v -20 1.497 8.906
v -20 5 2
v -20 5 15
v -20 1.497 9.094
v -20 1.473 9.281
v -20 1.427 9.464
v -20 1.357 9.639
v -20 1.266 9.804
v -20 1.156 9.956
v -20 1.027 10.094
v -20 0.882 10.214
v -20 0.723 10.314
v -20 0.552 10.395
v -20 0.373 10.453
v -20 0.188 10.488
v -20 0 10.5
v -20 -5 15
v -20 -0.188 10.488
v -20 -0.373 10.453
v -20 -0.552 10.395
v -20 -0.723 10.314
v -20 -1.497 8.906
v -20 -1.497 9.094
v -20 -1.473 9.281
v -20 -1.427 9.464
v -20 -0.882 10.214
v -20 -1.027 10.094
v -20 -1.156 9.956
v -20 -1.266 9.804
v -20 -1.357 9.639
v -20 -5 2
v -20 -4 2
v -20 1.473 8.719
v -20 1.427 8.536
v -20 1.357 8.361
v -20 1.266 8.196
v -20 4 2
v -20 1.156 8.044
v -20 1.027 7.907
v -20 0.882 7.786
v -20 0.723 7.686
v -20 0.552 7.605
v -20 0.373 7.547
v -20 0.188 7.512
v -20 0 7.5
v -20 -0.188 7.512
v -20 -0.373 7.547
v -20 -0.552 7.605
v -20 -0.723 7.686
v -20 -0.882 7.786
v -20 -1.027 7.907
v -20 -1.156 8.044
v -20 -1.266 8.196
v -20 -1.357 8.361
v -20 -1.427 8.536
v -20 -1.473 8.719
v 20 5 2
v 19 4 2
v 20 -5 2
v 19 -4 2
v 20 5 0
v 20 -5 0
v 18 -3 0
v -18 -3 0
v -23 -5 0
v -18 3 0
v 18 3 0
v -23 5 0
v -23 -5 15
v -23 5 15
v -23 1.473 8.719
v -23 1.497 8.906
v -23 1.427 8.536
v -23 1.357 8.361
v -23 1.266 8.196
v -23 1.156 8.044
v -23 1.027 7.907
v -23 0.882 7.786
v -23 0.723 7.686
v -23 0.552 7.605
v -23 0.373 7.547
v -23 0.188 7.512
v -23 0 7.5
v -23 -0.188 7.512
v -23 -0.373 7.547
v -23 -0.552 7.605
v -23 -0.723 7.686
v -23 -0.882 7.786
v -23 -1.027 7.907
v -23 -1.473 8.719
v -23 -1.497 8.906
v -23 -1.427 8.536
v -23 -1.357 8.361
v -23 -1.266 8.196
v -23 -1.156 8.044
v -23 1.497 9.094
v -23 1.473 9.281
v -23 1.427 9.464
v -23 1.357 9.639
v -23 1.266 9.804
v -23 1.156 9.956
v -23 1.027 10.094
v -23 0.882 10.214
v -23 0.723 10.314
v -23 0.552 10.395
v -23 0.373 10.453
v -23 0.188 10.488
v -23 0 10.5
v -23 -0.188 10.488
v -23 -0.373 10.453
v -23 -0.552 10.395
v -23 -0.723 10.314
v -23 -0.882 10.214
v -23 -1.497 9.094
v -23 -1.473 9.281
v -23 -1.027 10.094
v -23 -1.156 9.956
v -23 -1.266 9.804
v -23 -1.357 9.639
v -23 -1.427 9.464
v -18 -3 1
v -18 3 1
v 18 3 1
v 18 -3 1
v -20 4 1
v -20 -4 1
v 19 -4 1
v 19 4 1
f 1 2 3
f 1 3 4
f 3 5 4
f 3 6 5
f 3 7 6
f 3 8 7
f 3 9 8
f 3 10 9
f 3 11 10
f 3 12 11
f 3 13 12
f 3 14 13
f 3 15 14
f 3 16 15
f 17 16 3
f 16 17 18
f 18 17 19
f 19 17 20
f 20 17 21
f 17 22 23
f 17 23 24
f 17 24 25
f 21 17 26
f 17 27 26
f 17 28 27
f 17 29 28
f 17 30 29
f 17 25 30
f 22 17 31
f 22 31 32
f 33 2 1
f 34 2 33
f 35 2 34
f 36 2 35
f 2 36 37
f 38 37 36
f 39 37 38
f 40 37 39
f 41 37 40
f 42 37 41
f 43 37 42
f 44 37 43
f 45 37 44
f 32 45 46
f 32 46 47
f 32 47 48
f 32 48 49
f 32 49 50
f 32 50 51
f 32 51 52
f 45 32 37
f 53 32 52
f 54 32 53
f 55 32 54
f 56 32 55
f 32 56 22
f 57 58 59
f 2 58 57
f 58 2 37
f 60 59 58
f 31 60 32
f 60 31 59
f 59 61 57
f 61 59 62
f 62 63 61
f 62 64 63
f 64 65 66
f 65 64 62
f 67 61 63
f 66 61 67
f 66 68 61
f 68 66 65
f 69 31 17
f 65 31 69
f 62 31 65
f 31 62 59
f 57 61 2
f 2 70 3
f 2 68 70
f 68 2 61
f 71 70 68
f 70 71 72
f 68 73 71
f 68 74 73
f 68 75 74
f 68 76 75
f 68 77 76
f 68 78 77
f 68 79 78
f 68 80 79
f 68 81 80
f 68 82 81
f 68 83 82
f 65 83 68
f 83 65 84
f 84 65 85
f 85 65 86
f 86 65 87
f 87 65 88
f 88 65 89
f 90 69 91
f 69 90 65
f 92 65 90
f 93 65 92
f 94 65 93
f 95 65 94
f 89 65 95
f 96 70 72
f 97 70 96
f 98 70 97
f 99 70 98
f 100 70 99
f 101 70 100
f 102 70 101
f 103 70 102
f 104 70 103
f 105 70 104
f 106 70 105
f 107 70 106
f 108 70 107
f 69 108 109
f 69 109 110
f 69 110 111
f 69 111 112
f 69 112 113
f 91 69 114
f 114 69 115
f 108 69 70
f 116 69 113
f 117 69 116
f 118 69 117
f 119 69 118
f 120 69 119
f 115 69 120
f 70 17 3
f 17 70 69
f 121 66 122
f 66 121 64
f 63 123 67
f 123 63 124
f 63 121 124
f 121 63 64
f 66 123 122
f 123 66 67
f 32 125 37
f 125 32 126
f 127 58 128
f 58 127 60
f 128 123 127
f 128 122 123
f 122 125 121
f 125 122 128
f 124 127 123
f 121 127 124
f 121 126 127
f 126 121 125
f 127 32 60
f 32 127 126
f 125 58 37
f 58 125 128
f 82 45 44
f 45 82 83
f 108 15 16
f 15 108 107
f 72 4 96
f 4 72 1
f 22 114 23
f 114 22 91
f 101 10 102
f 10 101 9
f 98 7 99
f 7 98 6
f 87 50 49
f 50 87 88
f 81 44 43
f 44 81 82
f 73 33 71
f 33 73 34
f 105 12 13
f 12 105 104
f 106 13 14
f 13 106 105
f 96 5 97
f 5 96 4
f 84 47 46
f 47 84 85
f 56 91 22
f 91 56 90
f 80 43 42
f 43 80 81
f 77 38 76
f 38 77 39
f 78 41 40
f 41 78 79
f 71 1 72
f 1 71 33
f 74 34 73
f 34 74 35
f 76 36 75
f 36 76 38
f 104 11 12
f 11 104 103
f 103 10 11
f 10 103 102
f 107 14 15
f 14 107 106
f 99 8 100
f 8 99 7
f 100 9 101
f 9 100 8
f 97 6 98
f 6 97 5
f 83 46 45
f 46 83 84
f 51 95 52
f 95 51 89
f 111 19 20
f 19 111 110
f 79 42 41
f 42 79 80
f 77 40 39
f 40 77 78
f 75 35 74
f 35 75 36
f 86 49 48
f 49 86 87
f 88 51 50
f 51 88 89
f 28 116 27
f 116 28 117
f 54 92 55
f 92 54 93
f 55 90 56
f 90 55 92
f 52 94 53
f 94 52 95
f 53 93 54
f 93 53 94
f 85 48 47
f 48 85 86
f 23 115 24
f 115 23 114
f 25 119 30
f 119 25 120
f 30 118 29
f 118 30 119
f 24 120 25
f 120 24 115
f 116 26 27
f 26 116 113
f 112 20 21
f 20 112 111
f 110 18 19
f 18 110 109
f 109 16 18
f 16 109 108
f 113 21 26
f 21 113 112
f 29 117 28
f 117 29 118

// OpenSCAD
$fn = 50;


difference() {
	union() {
		translate(v = [-20.0000000000, -5.0000000000, 0]) {
			cube(size = [40, 10, 2]);
		}
		translate(v = [-23.0000000000, -5.0000000000, 0]) {
			cube(size = [3, 10, 15]);
		}
	}
	union() {
		translate(v = [-18.0000000000, -3.0000000000, 0]) {
			cube(size = [36, 6, 2]);
		}
		translate(v = [-20.0000000000, -4.0000000000, 1]) {
			cube(size = [39, 8, 1]);
		}
		#translate(v = [-30.0000000000, 0, 9]) {
			rotate(a = [0, 90, 0]) {
				cylinder(h = 20, r = 1.5000000000);
			}
		}
	}
}
